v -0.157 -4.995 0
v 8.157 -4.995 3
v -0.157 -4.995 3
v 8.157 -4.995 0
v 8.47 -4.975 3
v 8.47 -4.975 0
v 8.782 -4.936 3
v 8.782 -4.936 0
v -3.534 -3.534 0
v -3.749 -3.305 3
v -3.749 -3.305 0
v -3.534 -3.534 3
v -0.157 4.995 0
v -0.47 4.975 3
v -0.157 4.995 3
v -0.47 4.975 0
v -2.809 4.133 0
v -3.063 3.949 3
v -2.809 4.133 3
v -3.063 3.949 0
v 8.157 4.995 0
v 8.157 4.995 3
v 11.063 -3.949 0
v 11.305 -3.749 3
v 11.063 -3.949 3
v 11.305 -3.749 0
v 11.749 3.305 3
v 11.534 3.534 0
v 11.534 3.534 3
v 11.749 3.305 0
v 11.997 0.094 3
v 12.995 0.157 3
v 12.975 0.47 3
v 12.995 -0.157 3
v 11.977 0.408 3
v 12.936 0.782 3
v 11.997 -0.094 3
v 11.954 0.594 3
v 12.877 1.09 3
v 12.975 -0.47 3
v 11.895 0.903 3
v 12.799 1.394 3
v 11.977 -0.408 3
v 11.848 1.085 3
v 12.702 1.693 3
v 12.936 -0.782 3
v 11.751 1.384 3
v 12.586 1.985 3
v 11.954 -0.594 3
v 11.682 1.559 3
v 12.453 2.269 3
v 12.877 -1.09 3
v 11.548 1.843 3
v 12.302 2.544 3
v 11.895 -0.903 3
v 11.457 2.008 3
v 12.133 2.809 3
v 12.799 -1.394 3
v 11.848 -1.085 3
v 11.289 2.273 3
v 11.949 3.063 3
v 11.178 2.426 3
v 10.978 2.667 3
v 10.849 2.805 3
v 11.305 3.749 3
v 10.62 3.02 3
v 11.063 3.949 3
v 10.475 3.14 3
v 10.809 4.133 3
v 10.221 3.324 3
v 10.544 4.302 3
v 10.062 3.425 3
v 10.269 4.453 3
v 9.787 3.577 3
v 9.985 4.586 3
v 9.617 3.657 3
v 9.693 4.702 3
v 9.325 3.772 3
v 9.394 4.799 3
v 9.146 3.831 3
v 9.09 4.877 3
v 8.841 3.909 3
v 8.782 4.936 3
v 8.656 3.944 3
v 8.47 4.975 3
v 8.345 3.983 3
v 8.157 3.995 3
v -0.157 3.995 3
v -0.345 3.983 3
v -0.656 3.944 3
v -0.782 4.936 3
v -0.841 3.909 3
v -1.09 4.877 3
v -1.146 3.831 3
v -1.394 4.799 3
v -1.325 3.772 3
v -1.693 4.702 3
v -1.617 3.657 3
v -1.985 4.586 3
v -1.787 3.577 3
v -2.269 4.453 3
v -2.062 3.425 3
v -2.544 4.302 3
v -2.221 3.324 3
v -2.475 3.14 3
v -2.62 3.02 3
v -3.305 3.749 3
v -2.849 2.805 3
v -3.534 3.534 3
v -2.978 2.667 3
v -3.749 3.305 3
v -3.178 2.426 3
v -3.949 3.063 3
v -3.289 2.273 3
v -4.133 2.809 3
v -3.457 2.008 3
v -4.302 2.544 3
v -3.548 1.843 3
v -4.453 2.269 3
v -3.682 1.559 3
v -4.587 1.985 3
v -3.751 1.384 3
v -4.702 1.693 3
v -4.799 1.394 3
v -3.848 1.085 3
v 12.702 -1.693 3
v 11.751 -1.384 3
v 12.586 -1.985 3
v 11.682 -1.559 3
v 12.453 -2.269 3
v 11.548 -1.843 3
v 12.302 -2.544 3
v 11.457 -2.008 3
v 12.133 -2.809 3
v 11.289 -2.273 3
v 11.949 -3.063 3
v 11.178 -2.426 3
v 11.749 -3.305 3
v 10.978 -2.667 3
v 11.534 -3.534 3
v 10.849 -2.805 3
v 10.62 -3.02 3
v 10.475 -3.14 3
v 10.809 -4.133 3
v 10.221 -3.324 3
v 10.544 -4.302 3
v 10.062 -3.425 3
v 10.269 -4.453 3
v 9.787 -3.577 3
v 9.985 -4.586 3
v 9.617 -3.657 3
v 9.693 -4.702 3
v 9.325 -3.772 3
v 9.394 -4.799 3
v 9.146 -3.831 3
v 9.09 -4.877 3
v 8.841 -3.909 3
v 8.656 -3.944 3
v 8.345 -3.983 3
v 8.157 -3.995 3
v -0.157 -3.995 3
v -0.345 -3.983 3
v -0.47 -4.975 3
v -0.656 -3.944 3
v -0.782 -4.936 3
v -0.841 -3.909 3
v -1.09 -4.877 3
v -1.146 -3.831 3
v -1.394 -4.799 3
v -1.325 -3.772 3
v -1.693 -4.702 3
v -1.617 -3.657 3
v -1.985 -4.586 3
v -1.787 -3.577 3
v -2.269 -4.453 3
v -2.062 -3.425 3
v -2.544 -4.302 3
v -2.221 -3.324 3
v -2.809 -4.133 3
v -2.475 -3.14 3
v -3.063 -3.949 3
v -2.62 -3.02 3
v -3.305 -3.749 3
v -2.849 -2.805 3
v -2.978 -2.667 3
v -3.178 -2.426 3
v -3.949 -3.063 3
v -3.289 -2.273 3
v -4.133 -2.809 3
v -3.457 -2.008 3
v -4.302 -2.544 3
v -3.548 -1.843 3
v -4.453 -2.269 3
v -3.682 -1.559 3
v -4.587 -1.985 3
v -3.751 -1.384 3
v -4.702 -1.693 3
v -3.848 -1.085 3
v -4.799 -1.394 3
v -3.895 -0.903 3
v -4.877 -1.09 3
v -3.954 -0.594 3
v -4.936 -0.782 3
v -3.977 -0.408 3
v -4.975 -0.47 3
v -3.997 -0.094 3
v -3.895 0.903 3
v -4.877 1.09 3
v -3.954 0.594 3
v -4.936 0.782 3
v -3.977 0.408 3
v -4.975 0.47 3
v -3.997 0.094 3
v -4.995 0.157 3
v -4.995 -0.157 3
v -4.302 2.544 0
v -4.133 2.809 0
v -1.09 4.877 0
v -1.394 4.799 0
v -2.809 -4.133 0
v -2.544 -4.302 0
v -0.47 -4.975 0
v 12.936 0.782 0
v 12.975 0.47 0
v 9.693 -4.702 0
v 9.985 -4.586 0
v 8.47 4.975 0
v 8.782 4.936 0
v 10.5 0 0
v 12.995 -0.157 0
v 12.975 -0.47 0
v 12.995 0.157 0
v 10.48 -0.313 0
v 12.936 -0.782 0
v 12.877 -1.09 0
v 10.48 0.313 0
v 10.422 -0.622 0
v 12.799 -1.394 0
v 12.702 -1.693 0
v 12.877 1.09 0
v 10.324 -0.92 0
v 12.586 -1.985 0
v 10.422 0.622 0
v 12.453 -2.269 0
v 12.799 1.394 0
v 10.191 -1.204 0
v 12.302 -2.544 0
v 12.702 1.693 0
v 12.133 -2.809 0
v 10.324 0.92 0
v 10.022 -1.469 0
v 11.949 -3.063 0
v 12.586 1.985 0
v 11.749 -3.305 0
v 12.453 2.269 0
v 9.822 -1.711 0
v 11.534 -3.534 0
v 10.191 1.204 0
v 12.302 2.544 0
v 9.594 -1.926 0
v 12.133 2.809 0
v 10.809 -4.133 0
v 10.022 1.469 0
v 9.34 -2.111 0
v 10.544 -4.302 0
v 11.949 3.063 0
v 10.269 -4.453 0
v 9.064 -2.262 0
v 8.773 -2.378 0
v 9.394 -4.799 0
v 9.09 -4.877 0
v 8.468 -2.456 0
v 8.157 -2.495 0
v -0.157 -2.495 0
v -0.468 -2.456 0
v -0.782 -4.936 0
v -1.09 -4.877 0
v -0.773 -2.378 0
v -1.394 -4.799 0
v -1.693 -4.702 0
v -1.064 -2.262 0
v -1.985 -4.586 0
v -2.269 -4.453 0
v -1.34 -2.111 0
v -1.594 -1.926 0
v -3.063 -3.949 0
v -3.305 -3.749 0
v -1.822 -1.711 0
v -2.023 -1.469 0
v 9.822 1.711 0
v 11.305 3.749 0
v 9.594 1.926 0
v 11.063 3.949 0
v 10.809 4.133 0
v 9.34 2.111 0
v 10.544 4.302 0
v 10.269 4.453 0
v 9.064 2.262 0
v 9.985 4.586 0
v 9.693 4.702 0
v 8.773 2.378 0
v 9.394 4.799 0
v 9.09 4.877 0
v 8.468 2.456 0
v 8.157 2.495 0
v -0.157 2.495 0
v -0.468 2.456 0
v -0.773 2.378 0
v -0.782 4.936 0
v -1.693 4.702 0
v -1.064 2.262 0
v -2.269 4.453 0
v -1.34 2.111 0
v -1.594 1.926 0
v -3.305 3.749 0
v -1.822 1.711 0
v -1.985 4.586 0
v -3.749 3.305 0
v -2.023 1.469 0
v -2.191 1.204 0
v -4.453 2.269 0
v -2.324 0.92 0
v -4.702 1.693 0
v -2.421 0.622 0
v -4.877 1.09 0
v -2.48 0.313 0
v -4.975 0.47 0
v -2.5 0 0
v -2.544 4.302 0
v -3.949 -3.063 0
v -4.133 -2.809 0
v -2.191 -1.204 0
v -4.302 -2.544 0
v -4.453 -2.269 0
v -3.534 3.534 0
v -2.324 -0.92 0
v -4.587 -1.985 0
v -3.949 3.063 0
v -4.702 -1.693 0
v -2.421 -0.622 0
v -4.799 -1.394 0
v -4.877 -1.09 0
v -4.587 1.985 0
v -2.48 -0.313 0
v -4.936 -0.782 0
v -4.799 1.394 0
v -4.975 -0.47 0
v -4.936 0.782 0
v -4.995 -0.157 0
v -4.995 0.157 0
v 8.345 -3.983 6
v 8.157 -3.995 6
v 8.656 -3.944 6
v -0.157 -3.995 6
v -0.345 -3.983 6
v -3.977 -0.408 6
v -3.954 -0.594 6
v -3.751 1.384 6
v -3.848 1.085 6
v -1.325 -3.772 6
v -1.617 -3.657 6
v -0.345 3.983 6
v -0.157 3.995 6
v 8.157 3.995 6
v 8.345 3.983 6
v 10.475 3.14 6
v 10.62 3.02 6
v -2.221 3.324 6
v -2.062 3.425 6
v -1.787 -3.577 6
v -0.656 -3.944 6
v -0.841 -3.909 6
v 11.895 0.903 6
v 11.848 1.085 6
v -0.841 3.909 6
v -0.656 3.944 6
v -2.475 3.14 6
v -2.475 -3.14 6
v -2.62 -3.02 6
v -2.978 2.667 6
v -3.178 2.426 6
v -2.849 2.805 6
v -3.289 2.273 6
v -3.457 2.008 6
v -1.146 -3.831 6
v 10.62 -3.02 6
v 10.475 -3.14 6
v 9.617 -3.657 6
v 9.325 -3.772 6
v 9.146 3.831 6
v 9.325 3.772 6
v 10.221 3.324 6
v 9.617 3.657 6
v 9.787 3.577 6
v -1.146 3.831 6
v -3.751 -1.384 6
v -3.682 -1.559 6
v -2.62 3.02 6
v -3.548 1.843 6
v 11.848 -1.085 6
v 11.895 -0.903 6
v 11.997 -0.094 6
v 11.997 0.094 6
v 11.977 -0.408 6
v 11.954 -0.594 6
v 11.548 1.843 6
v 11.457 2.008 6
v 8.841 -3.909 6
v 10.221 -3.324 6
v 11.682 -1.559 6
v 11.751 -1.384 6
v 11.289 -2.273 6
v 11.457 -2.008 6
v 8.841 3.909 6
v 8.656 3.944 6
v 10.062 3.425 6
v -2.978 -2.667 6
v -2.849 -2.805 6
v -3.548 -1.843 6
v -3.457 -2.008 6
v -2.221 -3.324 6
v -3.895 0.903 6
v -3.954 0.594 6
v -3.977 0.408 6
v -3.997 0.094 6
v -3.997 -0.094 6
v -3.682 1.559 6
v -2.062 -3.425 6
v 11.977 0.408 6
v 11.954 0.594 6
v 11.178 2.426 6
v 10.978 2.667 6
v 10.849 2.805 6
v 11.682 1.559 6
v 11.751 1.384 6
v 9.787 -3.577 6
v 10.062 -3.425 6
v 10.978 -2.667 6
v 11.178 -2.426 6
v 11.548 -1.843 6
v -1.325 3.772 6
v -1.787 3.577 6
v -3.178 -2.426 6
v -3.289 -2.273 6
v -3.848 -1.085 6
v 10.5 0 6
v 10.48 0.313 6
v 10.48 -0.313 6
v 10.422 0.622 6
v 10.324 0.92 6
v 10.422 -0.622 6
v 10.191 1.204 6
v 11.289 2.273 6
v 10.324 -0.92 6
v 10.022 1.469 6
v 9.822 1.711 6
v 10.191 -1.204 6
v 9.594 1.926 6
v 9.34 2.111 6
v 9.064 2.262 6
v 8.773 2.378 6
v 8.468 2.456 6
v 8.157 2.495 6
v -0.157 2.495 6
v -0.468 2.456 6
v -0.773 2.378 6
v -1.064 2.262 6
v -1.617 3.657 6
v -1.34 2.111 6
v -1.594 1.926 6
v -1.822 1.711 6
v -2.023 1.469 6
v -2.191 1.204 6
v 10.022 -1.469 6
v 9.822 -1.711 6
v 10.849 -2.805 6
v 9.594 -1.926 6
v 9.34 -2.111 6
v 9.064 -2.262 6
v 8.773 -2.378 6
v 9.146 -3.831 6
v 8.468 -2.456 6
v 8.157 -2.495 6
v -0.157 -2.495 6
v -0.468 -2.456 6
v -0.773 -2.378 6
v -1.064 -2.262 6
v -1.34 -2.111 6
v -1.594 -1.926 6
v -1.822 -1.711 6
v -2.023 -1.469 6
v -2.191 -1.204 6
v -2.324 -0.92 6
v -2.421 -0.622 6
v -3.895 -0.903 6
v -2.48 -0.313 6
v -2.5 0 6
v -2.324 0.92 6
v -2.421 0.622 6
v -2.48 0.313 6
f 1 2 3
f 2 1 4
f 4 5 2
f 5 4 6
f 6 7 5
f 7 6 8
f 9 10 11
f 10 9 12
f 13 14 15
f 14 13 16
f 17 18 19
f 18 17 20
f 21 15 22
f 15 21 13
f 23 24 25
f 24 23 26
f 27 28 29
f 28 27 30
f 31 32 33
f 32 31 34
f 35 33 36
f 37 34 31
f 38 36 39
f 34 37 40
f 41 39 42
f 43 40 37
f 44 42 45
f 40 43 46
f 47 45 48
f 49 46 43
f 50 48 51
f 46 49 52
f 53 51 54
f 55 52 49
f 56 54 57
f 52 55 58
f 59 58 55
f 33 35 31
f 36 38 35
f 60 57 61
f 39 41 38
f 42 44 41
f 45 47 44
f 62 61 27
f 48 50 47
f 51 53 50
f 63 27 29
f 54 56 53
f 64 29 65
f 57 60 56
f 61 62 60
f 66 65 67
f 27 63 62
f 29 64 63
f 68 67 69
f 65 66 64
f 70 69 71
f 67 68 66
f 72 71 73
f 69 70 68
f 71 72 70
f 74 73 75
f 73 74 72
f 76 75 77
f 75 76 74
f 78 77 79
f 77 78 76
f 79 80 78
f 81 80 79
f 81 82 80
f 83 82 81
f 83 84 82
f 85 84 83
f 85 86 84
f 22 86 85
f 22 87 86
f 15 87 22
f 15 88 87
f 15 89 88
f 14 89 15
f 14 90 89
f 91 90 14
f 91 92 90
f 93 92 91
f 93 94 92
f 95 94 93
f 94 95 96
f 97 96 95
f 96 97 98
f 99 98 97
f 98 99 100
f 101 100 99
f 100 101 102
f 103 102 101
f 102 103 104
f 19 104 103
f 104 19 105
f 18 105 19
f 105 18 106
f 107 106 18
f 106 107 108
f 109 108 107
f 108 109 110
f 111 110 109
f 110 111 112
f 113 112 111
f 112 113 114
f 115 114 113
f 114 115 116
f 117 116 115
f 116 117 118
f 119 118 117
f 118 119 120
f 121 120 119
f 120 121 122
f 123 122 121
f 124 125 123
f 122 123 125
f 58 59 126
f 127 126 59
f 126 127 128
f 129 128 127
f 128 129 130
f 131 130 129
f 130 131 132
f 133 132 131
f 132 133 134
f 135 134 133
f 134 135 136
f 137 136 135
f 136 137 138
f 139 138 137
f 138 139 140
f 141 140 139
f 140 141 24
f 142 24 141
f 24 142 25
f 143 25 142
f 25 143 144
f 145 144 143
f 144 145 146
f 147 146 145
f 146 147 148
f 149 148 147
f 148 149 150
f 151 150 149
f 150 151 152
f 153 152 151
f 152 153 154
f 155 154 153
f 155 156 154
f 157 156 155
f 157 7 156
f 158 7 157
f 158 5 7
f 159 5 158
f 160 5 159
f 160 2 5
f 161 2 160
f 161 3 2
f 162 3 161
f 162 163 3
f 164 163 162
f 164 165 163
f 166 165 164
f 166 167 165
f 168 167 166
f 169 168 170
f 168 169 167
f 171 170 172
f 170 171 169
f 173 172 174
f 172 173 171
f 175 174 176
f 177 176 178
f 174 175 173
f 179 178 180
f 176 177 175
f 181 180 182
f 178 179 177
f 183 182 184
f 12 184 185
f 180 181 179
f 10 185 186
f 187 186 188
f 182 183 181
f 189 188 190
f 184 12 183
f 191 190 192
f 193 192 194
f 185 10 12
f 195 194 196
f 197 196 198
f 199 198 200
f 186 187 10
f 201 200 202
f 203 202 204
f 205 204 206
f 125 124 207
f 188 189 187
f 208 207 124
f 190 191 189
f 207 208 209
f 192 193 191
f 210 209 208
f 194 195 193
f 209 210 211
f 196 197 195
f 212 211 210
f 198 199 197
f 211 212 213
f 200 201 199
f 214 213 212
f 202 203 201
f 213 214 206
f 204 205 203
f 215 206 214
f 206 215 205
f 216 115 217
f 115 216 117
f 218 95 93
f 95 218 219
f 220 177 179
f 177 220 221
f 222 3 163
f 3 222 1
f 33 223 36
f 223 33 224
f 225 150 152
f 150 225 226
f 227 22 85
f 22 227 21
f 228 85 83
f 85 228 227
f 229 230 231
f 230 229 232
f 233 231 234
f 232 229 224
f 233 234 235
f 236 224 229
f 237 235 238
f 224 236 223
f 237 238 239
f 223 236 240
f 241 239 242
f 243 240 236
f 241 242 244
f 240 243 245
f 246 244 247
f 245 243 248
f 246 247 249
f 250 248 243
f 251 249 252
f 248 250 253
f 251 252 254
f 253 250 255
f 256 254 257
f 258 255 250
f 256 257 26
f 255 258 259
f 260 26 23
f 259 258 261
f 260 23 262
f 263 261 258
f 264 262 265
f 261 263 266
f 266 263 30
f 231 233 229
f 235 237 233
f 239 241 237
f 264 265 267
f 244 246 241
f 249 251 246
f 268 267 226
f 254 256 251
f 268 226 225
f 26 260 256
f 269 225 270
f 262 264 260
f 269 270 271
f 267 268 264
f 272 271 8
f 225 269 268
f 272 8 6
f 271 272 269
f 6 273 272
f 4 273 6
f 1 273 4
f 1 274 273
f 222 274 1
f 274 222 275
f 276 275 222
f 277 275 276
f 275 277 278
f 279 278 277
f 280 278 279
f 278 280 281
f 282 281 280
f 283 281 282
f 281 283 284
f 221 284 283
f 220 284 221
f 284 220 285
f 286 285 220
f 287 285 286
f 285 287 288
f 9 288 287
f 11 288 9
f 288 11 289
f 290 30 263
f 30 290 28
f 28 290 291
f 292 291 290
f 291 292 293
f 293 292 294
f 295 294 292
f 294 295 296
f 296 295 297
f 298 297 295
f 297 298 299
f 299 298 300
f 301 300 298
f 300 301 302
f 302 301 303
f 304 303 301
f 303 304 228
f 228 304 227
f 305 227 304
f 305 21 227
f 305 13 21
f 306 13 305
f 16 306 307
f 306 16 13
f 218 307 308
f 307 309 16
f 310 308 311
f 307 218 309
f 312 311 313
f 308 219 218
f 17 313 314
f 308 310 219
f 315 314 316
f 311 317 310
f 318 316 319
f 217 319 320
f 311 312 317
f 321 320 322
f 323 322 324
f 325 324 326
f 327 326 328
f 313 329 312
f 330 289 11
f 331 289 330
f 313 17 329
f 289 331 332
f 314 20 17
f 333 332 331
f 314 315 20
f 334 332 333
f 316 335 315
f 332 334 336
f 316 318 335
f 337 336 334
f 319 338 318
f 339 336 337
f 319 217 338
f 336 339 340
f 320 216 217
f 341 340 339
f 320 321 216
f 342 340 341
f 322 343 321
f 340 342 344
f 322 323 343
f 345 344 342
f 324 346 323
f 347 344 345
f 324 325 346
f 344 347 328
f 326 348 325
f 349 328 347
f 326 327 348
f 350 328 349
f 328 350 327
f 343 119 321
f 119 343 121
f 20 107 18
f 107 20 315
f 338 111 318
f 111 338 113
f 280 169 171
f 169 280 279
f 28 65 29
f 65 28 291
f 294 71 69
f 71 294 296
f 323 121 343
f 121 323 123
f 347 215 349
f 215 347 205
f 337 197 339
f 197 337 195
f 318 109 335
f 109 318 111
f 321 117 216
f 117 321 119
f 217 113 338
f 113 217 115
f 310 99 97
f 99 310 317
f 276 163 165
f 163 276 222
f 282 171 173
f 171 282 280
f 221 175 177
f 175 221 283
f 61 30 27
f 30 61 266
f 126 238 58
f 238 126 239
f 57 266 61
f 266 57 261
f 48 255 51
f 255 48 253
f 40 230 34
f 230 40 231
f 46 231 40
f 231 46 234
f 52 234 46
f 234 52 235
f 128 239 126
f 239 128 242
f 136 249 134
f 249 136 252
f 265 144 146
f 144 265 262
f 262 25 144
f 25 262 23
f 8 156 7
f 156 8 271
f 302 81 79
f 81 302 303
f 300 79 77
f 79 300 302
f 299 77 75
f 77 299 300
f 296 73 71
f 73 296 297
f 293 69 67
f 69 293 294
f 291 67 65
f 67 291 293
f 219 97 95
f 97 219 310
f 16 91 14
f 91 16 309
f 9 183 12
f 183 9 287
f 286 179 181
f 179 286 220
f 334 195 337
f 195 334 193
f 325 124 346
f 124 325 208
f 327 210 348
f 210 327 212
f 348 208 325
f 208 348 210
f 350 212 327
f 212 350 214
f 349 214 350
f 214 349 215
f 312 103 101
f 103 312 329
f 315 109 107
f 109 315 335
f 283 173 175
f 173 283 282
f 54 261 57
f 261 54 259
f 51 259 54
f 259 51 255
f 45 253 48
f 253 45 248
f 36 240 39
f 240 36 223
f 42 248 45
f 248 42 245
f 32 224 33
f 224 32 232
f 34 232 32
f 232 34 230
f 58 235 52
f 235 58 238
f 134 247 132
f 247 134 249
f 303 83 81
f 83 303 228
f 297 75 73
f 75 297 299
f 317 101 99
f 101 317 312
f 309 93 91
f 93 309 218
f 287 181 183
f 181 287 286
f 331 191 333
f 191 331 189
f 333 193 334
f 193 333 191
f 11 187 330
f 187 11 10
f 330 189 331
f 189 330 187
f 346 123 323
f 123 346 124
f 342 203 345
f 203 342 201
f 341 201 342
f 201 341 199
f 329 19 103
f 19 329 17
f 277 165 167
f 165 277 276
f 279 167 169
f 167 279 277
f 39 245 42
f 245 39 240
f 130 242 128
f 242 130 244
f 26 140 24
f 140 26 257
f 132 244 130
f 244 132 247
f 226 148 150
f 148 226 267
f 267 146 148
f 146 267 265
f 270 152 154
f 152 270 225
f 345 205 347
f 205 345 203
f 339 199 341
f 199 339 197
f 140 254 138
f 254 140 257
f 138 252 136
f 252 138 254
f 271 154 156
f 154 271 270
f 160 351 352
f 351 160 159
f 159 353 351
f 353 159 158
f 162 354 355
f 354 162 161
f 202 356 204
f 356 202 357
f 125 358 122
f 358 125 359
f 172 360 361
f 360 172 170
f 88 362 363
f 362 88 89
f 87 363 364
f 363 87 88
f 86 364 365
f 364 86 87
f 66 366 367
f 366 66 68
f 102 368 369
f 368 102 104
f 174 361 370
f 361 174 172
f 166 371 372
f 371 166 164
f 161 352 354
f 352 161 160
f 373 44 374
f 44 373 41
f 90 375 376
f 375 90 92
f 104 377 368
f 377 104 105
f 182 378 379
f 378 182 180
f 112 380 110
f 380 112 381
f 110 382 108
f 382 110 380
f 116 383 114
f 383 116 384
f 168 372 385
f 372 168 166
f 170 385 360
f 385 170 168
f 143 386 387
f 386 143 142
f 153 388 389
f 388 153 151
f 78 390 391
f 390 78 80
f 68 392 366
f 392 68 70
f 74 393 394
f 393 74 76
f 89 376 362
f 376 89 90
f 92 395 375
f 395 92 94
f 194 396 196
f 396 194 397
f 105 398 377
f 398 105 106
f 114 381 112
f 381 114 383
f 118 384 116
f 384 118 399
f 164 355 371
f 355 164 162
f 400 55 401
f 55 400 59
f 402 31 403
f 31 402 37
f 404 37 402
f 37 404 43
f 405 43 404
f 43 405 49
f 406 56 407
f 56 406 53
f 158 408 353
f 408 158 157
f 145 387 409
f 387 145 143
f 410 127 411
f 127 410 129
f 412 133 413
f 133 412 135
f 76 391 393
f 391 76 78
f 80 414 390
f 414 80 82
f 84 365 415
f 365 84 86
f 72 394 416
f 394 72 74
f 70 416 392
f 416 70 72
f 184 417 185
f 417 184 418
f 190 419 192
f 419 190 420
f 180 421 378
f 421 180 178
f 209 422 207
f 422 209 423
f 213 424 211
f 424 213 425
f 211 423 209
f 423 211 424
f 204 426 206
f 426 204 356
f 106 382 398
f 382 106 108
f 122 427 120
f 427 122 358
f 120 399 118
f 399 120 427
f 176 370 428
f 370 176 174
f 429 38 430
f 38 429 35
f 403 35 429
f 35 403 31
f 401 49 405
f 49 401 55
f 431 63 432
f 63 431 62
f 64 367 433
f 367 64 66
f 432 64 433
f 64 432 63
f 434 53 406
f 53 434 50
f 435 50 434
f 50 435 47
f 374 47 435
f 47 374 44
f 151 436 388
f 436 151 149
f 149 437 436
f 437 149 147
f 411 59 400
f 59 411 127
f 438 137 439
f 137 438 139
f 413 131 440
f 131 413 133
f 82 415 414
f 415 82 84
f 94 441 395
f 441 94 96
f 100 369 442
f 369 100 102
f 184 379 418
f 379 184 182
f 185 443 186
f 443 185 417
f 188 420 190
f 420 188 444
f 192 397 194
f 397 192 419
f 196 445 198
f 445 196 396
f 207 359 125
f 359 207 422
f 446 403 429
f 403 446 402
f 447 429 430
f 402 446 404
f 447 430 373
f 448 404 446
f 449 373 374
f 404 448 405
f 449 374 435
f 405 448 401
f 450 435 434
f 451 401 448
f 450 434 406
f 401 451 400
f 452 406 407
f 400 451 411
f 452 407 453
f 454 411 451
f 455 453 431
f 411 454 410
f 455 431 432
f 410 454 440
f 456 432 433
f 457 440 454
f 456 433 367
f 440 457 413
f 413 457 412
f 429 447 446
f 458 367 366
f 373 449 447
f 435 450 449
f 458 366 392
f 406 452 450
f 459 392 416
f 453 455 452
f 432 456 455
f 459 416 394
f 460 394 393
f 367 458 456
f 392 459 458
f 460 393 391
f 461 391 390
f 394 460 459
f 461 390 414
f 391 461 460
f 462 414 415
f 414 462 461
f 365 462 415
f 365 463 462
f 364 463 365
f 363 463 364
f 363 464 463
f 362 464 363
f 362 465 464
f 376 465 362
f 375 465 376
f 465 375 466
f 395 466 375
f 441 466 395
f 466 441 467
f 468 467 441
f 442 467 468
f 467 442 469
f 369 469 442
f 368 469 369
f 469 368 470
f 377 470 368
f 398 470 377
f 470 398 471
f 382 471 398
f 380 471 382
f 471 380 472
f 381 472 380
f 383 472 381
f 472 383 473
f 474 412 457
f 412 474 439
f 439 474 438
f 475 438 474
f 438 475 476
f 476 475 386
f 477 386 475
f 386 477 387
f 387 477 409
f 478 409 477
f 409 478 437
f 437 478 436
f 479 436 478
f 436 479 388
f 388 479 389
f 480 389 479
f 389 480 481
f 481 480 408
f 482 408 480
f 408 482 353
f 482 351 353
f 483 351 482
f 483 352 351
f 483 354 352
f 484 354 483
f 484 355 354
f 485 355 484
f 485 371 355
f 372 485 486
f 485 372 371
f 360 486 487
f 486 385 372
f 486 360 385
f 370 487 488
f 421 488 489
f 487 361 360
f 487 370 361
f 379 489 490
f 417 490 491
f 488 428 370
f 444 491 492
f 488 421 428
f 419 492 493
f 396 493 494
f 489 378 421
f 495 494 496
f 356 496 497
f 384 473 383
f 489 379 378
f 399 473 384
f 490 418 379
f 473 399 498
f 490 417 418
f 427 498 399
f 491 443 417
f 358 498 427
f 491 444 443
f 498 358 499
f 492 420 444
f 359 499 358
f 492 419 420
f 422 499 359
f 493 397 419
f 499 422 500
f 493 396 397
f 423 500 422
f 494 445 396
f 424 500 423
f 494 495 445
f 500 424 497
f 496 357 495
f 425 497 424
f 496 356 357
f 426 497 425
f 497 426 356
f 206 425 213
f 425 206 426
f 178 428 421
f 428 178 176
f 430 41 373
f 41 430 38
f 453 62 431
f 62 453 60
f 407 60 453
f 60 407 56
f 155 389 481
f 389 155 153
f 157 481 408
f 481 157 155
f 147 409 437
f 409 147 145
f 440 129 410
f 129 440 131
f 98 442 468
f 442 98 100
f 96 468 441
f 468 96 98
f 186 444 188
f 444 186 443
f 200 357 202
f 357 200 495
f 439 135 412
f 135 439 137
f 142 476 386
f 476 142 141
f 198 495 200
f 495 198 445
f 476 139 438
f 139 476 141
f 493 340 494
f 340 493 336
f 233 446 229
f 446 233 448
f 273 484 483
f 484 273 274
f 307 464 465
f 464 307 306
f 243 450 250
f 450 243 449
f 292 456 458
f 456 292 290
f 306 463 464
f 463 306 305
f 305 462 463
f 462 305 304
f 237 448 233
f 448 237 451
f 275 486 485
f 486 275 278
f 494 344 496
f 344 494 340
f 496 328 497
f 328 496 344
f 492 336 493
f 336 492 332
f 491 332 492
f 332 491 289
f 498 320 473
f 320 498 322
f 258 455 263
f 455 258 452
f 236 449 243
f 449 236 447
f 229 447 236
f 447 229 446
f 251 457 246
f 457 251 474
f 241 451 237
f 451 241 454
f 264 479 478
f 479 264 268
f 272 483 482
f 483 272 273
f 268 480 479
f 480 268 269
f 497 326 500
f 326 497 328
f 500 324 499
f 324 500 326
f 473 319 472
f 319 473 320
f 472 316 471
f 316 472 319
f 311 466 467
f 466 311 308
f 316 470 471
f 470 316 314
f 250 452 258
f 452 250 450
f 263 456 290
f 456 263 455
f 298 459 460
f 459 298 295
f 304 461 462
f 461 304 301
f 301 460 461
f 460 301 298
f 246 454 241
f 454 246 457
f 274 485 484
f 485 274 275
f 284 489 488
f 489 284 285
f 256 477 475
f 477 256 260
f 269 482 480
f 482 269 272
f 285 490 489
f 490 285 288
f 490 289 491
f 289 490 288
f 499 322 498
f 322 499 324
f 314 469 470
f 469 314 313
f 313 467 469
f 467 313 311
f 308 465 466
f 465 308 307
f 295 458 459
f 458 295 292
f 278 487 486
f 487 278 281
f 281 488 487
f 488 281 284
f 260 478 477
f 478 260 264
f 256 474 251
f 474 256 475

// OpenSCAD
// file: ../lib/utils.scad
include <params.scad>;

function tol(val) = val - tolerance;

module cone(r, angle, invert=false) {
    h = tan((180 - angle) / 2) * r;
    translate([0, 0, -h]) {
        if (invert) {
                cylinder(r1=r,r2=0,h=h, $fn=20); 
        } else {
            cylinder(r1=0,r2=r,h=h, $fn=20); 
        }
    }
}

module roundrect(vect, r, center=false, $fn=20) {
    sq = len(vect) > 1
        ? [for (i = [0:1:len(vect)-1]) vect[i] - r * 2]
        : vect - r * 2;
    if (center) {
        translate([-(sq[0]+r*2)/2,-(sq[1]+r*2)/2])
        minkowski() {
            square(sq);
            translate([r, r])
                circle(r=r);
        }
    } else {
        minkowski() {
            square(sq);
            translate([r, r])
                circle(r=r);
        }
    }
}

module profile($fn=20) {
    minkowski() {
        translate([fan_case_radius, fan_case_radius, 0])
            square(fan_case - fan_case_radius * 2);
        circle(fan_case_radius, $fn);
    }
}

module fan_mount_points(radius, $fn=20) {
    offset = (fan_case - fan_screw_distance) / 2;
    translate([offset, offset, 0]) {
        circle(radius, $fn);
        translate([fan_screw_distance, 0, 0])
            circle(radius, $fn);
        translate([fan_screw_distance, fan_screw_distance, 0])
            circle(radius, $fn);
        translate([0, fan_screw_distance, 0])
            circle(radius, $fn);
    }
}

module square_grill(width, height, fin_width, fin_count) {
    fin_spacing = width / fin_count;
    difference() {
        square(width);
        union() {
            for (i = [0:1:fin_count]) {
                translate([(i + 1) * fin_spacing - (fin_spacing / 2) - (fin_width / 2), 0, 0])
                    square([fin_width, height]);
            }
        }
    }
}

module bushing(outer_r, inner_r, h) {
    linear_extrude(h)
        difference() {
            circle(r=outer_r);
            circle(r=inner_r);
        }
}

module screw_at_origin(r, d, l, head, head_d, cap, angle) {
    translate([0, 0, -l])
        screw(r, d, l, head, head_d, cap, angle);
}

module screw(r, d, l, head, head_d, cap, angle, fn=20, head_fn) {
    radius = r > 0 ? r : d / 2;
    head_r = head > 0 ? head : head_d / 2;
    hfn = head_fn ? head_fn : fn;

    union() {
        if (angle) {
            translate([0, 0, l])
                cone(head_r, angle, false);
        }
        linear_extrude(l)
            circle(r=radius, $fn=fn);
        if (cap > 0) {
            union() {
                translate([0, 0, l - cap])
                    linear_extrude(cap)
                        circle(r=head_r, $fn=hfn);
                translate([0, 0, l - cap - layer_height])
                    linear_extrude(layer_height)
                        square([radius * 2, head_r*2], center=true);
                translate([0, 0, l - cap - layer_height*2])
                    linear_extrude(layer_height)
                        square([radius * 2, radius*2], center=true);
            }
        }
    }
}

module inset_screw(r, d, l, head, head_d, cap, angle, inset, fn=20, head_fn) {
    screw_height = l - inset;
    head_r = head > 0 ? head : head_d / 2;

    union() {
        screw(
            r=r,
            d=d,
            l=screw_height,
            head=head_r,
            cap=cap,
            angle=angle,
            fn=fn,
            head_fn=head_fn
        );
        translate([0, 0, screw_height])
            linear_extrude(inset)
                circle(r=head_r, $fn=fn);
    }
}

function inch_to_mm(inches) = inches * 25.4;
// file: ../lib/params.scad
fan_case = 120;
fan_screw_distance = 105;
fan_case_depth = 25;
fan_case_radius = 5;
fan_case_screw_radius = 2.5;
fan_case_socket_cap_radius = 5.6 / 2;
fan_case_screw_head_radius = 3;
fan_case_screw_head_angle = 90;

grill_screw_size = 3;
grill_screw_radius = grill_screw_size / 2;
grill_screw_inset = 2;
grill_radius = 114 / 2;
grill_fin_offset = 10;
grill_fin_thickness = 2;
grill_fin_degrees = 30;

rear_grill_thickness = 2;

front_grill_thickness = 2;
front_grill_fin_count = 6;
front_grill_fin_thickness = 2;

filter_thickness = 5;
filter_width = fan_screw_distance - fan_case_screw_radius * 3;
filter_offset = (fan_case - filter_width) / 2;

base_retainer_thickness = 2;
base_height = 30;
base_cut_offset = 10;
base_retainer_inset = 4;

adapter_thickness = 2;
adapter_duct_in = 4;
adapter_height = 14;
adapter_duct_height = 50;
flat_adapter_duct_height = 50;
flat_adapter_screw_radius = 2;
flat_adapter_screw_head_radius = 4;

caddy_thickness = 2;
caddy_handle_width = 20;
caddy_handle_depth = 10;
caddy_handle_grip_count = 5;
caddy_handle_grip_depth = 1;
caddy_handle_grip_width = 1;
caddy_clip_height = 2;
caddy_clip_depth = 6;
caddy_clip_offset = 1;

foot_lower_radius = 15;
foot_upper_radius = 20;
foot_height = 18;
foot_inset_radius = 4;
foot_inset_depth = 3;
foot_screw_radius = 4;
foot_screw_inset = 6;
foot_screw_head_radius = 8;

power_supply_case_thickness = 3.0;
power_supply_screw_radius = 1.5;
power_supply_bushing_radius = 7.5;

power_supply_cable_pass_width = 18;
power_supply_cable_pass_height = 5;
power_supply_cable_pass_overhang = 5;
power_supply_cable_pass_overhang_depth = power_supply_case_thickness;
power_supply_cable_pass_depth = 3;
power_supply_cable_pass_thickness = 3;

tolerance = 0.2;
// main file
include <../lib/params.scad>;
use <../lib/utils.scad>;

$fn=50;

circle_offset = power_supply_cable_pass_width - power_supply_cable_pass_height * 2;
total_depth = power_supply_cable_pass_depth + power_supply_cable_pass_overhang_depth;

module profile() {
    hull() {
        circle(d=power_supply_cable_pass_height);
        translate([circle_offset, 0, 0])
            circle(d=power_supply_cable_pass_height);
    }
}


difference() {
    union() {
        linear_extrude(power_supply_cable_pass_overhang_depth)
            offset(power_supply_cable_pass_overhang/2)
                profile();
        translate([0, 0, power_supply_cable_pass_depth])
            linear_extrude(power_supply_cable_pass_depth)
            offset(power_supply_cable_pass_thickness/2)
                    profile();
    }
    linear_extrude(total_depth)
        profile();
}
